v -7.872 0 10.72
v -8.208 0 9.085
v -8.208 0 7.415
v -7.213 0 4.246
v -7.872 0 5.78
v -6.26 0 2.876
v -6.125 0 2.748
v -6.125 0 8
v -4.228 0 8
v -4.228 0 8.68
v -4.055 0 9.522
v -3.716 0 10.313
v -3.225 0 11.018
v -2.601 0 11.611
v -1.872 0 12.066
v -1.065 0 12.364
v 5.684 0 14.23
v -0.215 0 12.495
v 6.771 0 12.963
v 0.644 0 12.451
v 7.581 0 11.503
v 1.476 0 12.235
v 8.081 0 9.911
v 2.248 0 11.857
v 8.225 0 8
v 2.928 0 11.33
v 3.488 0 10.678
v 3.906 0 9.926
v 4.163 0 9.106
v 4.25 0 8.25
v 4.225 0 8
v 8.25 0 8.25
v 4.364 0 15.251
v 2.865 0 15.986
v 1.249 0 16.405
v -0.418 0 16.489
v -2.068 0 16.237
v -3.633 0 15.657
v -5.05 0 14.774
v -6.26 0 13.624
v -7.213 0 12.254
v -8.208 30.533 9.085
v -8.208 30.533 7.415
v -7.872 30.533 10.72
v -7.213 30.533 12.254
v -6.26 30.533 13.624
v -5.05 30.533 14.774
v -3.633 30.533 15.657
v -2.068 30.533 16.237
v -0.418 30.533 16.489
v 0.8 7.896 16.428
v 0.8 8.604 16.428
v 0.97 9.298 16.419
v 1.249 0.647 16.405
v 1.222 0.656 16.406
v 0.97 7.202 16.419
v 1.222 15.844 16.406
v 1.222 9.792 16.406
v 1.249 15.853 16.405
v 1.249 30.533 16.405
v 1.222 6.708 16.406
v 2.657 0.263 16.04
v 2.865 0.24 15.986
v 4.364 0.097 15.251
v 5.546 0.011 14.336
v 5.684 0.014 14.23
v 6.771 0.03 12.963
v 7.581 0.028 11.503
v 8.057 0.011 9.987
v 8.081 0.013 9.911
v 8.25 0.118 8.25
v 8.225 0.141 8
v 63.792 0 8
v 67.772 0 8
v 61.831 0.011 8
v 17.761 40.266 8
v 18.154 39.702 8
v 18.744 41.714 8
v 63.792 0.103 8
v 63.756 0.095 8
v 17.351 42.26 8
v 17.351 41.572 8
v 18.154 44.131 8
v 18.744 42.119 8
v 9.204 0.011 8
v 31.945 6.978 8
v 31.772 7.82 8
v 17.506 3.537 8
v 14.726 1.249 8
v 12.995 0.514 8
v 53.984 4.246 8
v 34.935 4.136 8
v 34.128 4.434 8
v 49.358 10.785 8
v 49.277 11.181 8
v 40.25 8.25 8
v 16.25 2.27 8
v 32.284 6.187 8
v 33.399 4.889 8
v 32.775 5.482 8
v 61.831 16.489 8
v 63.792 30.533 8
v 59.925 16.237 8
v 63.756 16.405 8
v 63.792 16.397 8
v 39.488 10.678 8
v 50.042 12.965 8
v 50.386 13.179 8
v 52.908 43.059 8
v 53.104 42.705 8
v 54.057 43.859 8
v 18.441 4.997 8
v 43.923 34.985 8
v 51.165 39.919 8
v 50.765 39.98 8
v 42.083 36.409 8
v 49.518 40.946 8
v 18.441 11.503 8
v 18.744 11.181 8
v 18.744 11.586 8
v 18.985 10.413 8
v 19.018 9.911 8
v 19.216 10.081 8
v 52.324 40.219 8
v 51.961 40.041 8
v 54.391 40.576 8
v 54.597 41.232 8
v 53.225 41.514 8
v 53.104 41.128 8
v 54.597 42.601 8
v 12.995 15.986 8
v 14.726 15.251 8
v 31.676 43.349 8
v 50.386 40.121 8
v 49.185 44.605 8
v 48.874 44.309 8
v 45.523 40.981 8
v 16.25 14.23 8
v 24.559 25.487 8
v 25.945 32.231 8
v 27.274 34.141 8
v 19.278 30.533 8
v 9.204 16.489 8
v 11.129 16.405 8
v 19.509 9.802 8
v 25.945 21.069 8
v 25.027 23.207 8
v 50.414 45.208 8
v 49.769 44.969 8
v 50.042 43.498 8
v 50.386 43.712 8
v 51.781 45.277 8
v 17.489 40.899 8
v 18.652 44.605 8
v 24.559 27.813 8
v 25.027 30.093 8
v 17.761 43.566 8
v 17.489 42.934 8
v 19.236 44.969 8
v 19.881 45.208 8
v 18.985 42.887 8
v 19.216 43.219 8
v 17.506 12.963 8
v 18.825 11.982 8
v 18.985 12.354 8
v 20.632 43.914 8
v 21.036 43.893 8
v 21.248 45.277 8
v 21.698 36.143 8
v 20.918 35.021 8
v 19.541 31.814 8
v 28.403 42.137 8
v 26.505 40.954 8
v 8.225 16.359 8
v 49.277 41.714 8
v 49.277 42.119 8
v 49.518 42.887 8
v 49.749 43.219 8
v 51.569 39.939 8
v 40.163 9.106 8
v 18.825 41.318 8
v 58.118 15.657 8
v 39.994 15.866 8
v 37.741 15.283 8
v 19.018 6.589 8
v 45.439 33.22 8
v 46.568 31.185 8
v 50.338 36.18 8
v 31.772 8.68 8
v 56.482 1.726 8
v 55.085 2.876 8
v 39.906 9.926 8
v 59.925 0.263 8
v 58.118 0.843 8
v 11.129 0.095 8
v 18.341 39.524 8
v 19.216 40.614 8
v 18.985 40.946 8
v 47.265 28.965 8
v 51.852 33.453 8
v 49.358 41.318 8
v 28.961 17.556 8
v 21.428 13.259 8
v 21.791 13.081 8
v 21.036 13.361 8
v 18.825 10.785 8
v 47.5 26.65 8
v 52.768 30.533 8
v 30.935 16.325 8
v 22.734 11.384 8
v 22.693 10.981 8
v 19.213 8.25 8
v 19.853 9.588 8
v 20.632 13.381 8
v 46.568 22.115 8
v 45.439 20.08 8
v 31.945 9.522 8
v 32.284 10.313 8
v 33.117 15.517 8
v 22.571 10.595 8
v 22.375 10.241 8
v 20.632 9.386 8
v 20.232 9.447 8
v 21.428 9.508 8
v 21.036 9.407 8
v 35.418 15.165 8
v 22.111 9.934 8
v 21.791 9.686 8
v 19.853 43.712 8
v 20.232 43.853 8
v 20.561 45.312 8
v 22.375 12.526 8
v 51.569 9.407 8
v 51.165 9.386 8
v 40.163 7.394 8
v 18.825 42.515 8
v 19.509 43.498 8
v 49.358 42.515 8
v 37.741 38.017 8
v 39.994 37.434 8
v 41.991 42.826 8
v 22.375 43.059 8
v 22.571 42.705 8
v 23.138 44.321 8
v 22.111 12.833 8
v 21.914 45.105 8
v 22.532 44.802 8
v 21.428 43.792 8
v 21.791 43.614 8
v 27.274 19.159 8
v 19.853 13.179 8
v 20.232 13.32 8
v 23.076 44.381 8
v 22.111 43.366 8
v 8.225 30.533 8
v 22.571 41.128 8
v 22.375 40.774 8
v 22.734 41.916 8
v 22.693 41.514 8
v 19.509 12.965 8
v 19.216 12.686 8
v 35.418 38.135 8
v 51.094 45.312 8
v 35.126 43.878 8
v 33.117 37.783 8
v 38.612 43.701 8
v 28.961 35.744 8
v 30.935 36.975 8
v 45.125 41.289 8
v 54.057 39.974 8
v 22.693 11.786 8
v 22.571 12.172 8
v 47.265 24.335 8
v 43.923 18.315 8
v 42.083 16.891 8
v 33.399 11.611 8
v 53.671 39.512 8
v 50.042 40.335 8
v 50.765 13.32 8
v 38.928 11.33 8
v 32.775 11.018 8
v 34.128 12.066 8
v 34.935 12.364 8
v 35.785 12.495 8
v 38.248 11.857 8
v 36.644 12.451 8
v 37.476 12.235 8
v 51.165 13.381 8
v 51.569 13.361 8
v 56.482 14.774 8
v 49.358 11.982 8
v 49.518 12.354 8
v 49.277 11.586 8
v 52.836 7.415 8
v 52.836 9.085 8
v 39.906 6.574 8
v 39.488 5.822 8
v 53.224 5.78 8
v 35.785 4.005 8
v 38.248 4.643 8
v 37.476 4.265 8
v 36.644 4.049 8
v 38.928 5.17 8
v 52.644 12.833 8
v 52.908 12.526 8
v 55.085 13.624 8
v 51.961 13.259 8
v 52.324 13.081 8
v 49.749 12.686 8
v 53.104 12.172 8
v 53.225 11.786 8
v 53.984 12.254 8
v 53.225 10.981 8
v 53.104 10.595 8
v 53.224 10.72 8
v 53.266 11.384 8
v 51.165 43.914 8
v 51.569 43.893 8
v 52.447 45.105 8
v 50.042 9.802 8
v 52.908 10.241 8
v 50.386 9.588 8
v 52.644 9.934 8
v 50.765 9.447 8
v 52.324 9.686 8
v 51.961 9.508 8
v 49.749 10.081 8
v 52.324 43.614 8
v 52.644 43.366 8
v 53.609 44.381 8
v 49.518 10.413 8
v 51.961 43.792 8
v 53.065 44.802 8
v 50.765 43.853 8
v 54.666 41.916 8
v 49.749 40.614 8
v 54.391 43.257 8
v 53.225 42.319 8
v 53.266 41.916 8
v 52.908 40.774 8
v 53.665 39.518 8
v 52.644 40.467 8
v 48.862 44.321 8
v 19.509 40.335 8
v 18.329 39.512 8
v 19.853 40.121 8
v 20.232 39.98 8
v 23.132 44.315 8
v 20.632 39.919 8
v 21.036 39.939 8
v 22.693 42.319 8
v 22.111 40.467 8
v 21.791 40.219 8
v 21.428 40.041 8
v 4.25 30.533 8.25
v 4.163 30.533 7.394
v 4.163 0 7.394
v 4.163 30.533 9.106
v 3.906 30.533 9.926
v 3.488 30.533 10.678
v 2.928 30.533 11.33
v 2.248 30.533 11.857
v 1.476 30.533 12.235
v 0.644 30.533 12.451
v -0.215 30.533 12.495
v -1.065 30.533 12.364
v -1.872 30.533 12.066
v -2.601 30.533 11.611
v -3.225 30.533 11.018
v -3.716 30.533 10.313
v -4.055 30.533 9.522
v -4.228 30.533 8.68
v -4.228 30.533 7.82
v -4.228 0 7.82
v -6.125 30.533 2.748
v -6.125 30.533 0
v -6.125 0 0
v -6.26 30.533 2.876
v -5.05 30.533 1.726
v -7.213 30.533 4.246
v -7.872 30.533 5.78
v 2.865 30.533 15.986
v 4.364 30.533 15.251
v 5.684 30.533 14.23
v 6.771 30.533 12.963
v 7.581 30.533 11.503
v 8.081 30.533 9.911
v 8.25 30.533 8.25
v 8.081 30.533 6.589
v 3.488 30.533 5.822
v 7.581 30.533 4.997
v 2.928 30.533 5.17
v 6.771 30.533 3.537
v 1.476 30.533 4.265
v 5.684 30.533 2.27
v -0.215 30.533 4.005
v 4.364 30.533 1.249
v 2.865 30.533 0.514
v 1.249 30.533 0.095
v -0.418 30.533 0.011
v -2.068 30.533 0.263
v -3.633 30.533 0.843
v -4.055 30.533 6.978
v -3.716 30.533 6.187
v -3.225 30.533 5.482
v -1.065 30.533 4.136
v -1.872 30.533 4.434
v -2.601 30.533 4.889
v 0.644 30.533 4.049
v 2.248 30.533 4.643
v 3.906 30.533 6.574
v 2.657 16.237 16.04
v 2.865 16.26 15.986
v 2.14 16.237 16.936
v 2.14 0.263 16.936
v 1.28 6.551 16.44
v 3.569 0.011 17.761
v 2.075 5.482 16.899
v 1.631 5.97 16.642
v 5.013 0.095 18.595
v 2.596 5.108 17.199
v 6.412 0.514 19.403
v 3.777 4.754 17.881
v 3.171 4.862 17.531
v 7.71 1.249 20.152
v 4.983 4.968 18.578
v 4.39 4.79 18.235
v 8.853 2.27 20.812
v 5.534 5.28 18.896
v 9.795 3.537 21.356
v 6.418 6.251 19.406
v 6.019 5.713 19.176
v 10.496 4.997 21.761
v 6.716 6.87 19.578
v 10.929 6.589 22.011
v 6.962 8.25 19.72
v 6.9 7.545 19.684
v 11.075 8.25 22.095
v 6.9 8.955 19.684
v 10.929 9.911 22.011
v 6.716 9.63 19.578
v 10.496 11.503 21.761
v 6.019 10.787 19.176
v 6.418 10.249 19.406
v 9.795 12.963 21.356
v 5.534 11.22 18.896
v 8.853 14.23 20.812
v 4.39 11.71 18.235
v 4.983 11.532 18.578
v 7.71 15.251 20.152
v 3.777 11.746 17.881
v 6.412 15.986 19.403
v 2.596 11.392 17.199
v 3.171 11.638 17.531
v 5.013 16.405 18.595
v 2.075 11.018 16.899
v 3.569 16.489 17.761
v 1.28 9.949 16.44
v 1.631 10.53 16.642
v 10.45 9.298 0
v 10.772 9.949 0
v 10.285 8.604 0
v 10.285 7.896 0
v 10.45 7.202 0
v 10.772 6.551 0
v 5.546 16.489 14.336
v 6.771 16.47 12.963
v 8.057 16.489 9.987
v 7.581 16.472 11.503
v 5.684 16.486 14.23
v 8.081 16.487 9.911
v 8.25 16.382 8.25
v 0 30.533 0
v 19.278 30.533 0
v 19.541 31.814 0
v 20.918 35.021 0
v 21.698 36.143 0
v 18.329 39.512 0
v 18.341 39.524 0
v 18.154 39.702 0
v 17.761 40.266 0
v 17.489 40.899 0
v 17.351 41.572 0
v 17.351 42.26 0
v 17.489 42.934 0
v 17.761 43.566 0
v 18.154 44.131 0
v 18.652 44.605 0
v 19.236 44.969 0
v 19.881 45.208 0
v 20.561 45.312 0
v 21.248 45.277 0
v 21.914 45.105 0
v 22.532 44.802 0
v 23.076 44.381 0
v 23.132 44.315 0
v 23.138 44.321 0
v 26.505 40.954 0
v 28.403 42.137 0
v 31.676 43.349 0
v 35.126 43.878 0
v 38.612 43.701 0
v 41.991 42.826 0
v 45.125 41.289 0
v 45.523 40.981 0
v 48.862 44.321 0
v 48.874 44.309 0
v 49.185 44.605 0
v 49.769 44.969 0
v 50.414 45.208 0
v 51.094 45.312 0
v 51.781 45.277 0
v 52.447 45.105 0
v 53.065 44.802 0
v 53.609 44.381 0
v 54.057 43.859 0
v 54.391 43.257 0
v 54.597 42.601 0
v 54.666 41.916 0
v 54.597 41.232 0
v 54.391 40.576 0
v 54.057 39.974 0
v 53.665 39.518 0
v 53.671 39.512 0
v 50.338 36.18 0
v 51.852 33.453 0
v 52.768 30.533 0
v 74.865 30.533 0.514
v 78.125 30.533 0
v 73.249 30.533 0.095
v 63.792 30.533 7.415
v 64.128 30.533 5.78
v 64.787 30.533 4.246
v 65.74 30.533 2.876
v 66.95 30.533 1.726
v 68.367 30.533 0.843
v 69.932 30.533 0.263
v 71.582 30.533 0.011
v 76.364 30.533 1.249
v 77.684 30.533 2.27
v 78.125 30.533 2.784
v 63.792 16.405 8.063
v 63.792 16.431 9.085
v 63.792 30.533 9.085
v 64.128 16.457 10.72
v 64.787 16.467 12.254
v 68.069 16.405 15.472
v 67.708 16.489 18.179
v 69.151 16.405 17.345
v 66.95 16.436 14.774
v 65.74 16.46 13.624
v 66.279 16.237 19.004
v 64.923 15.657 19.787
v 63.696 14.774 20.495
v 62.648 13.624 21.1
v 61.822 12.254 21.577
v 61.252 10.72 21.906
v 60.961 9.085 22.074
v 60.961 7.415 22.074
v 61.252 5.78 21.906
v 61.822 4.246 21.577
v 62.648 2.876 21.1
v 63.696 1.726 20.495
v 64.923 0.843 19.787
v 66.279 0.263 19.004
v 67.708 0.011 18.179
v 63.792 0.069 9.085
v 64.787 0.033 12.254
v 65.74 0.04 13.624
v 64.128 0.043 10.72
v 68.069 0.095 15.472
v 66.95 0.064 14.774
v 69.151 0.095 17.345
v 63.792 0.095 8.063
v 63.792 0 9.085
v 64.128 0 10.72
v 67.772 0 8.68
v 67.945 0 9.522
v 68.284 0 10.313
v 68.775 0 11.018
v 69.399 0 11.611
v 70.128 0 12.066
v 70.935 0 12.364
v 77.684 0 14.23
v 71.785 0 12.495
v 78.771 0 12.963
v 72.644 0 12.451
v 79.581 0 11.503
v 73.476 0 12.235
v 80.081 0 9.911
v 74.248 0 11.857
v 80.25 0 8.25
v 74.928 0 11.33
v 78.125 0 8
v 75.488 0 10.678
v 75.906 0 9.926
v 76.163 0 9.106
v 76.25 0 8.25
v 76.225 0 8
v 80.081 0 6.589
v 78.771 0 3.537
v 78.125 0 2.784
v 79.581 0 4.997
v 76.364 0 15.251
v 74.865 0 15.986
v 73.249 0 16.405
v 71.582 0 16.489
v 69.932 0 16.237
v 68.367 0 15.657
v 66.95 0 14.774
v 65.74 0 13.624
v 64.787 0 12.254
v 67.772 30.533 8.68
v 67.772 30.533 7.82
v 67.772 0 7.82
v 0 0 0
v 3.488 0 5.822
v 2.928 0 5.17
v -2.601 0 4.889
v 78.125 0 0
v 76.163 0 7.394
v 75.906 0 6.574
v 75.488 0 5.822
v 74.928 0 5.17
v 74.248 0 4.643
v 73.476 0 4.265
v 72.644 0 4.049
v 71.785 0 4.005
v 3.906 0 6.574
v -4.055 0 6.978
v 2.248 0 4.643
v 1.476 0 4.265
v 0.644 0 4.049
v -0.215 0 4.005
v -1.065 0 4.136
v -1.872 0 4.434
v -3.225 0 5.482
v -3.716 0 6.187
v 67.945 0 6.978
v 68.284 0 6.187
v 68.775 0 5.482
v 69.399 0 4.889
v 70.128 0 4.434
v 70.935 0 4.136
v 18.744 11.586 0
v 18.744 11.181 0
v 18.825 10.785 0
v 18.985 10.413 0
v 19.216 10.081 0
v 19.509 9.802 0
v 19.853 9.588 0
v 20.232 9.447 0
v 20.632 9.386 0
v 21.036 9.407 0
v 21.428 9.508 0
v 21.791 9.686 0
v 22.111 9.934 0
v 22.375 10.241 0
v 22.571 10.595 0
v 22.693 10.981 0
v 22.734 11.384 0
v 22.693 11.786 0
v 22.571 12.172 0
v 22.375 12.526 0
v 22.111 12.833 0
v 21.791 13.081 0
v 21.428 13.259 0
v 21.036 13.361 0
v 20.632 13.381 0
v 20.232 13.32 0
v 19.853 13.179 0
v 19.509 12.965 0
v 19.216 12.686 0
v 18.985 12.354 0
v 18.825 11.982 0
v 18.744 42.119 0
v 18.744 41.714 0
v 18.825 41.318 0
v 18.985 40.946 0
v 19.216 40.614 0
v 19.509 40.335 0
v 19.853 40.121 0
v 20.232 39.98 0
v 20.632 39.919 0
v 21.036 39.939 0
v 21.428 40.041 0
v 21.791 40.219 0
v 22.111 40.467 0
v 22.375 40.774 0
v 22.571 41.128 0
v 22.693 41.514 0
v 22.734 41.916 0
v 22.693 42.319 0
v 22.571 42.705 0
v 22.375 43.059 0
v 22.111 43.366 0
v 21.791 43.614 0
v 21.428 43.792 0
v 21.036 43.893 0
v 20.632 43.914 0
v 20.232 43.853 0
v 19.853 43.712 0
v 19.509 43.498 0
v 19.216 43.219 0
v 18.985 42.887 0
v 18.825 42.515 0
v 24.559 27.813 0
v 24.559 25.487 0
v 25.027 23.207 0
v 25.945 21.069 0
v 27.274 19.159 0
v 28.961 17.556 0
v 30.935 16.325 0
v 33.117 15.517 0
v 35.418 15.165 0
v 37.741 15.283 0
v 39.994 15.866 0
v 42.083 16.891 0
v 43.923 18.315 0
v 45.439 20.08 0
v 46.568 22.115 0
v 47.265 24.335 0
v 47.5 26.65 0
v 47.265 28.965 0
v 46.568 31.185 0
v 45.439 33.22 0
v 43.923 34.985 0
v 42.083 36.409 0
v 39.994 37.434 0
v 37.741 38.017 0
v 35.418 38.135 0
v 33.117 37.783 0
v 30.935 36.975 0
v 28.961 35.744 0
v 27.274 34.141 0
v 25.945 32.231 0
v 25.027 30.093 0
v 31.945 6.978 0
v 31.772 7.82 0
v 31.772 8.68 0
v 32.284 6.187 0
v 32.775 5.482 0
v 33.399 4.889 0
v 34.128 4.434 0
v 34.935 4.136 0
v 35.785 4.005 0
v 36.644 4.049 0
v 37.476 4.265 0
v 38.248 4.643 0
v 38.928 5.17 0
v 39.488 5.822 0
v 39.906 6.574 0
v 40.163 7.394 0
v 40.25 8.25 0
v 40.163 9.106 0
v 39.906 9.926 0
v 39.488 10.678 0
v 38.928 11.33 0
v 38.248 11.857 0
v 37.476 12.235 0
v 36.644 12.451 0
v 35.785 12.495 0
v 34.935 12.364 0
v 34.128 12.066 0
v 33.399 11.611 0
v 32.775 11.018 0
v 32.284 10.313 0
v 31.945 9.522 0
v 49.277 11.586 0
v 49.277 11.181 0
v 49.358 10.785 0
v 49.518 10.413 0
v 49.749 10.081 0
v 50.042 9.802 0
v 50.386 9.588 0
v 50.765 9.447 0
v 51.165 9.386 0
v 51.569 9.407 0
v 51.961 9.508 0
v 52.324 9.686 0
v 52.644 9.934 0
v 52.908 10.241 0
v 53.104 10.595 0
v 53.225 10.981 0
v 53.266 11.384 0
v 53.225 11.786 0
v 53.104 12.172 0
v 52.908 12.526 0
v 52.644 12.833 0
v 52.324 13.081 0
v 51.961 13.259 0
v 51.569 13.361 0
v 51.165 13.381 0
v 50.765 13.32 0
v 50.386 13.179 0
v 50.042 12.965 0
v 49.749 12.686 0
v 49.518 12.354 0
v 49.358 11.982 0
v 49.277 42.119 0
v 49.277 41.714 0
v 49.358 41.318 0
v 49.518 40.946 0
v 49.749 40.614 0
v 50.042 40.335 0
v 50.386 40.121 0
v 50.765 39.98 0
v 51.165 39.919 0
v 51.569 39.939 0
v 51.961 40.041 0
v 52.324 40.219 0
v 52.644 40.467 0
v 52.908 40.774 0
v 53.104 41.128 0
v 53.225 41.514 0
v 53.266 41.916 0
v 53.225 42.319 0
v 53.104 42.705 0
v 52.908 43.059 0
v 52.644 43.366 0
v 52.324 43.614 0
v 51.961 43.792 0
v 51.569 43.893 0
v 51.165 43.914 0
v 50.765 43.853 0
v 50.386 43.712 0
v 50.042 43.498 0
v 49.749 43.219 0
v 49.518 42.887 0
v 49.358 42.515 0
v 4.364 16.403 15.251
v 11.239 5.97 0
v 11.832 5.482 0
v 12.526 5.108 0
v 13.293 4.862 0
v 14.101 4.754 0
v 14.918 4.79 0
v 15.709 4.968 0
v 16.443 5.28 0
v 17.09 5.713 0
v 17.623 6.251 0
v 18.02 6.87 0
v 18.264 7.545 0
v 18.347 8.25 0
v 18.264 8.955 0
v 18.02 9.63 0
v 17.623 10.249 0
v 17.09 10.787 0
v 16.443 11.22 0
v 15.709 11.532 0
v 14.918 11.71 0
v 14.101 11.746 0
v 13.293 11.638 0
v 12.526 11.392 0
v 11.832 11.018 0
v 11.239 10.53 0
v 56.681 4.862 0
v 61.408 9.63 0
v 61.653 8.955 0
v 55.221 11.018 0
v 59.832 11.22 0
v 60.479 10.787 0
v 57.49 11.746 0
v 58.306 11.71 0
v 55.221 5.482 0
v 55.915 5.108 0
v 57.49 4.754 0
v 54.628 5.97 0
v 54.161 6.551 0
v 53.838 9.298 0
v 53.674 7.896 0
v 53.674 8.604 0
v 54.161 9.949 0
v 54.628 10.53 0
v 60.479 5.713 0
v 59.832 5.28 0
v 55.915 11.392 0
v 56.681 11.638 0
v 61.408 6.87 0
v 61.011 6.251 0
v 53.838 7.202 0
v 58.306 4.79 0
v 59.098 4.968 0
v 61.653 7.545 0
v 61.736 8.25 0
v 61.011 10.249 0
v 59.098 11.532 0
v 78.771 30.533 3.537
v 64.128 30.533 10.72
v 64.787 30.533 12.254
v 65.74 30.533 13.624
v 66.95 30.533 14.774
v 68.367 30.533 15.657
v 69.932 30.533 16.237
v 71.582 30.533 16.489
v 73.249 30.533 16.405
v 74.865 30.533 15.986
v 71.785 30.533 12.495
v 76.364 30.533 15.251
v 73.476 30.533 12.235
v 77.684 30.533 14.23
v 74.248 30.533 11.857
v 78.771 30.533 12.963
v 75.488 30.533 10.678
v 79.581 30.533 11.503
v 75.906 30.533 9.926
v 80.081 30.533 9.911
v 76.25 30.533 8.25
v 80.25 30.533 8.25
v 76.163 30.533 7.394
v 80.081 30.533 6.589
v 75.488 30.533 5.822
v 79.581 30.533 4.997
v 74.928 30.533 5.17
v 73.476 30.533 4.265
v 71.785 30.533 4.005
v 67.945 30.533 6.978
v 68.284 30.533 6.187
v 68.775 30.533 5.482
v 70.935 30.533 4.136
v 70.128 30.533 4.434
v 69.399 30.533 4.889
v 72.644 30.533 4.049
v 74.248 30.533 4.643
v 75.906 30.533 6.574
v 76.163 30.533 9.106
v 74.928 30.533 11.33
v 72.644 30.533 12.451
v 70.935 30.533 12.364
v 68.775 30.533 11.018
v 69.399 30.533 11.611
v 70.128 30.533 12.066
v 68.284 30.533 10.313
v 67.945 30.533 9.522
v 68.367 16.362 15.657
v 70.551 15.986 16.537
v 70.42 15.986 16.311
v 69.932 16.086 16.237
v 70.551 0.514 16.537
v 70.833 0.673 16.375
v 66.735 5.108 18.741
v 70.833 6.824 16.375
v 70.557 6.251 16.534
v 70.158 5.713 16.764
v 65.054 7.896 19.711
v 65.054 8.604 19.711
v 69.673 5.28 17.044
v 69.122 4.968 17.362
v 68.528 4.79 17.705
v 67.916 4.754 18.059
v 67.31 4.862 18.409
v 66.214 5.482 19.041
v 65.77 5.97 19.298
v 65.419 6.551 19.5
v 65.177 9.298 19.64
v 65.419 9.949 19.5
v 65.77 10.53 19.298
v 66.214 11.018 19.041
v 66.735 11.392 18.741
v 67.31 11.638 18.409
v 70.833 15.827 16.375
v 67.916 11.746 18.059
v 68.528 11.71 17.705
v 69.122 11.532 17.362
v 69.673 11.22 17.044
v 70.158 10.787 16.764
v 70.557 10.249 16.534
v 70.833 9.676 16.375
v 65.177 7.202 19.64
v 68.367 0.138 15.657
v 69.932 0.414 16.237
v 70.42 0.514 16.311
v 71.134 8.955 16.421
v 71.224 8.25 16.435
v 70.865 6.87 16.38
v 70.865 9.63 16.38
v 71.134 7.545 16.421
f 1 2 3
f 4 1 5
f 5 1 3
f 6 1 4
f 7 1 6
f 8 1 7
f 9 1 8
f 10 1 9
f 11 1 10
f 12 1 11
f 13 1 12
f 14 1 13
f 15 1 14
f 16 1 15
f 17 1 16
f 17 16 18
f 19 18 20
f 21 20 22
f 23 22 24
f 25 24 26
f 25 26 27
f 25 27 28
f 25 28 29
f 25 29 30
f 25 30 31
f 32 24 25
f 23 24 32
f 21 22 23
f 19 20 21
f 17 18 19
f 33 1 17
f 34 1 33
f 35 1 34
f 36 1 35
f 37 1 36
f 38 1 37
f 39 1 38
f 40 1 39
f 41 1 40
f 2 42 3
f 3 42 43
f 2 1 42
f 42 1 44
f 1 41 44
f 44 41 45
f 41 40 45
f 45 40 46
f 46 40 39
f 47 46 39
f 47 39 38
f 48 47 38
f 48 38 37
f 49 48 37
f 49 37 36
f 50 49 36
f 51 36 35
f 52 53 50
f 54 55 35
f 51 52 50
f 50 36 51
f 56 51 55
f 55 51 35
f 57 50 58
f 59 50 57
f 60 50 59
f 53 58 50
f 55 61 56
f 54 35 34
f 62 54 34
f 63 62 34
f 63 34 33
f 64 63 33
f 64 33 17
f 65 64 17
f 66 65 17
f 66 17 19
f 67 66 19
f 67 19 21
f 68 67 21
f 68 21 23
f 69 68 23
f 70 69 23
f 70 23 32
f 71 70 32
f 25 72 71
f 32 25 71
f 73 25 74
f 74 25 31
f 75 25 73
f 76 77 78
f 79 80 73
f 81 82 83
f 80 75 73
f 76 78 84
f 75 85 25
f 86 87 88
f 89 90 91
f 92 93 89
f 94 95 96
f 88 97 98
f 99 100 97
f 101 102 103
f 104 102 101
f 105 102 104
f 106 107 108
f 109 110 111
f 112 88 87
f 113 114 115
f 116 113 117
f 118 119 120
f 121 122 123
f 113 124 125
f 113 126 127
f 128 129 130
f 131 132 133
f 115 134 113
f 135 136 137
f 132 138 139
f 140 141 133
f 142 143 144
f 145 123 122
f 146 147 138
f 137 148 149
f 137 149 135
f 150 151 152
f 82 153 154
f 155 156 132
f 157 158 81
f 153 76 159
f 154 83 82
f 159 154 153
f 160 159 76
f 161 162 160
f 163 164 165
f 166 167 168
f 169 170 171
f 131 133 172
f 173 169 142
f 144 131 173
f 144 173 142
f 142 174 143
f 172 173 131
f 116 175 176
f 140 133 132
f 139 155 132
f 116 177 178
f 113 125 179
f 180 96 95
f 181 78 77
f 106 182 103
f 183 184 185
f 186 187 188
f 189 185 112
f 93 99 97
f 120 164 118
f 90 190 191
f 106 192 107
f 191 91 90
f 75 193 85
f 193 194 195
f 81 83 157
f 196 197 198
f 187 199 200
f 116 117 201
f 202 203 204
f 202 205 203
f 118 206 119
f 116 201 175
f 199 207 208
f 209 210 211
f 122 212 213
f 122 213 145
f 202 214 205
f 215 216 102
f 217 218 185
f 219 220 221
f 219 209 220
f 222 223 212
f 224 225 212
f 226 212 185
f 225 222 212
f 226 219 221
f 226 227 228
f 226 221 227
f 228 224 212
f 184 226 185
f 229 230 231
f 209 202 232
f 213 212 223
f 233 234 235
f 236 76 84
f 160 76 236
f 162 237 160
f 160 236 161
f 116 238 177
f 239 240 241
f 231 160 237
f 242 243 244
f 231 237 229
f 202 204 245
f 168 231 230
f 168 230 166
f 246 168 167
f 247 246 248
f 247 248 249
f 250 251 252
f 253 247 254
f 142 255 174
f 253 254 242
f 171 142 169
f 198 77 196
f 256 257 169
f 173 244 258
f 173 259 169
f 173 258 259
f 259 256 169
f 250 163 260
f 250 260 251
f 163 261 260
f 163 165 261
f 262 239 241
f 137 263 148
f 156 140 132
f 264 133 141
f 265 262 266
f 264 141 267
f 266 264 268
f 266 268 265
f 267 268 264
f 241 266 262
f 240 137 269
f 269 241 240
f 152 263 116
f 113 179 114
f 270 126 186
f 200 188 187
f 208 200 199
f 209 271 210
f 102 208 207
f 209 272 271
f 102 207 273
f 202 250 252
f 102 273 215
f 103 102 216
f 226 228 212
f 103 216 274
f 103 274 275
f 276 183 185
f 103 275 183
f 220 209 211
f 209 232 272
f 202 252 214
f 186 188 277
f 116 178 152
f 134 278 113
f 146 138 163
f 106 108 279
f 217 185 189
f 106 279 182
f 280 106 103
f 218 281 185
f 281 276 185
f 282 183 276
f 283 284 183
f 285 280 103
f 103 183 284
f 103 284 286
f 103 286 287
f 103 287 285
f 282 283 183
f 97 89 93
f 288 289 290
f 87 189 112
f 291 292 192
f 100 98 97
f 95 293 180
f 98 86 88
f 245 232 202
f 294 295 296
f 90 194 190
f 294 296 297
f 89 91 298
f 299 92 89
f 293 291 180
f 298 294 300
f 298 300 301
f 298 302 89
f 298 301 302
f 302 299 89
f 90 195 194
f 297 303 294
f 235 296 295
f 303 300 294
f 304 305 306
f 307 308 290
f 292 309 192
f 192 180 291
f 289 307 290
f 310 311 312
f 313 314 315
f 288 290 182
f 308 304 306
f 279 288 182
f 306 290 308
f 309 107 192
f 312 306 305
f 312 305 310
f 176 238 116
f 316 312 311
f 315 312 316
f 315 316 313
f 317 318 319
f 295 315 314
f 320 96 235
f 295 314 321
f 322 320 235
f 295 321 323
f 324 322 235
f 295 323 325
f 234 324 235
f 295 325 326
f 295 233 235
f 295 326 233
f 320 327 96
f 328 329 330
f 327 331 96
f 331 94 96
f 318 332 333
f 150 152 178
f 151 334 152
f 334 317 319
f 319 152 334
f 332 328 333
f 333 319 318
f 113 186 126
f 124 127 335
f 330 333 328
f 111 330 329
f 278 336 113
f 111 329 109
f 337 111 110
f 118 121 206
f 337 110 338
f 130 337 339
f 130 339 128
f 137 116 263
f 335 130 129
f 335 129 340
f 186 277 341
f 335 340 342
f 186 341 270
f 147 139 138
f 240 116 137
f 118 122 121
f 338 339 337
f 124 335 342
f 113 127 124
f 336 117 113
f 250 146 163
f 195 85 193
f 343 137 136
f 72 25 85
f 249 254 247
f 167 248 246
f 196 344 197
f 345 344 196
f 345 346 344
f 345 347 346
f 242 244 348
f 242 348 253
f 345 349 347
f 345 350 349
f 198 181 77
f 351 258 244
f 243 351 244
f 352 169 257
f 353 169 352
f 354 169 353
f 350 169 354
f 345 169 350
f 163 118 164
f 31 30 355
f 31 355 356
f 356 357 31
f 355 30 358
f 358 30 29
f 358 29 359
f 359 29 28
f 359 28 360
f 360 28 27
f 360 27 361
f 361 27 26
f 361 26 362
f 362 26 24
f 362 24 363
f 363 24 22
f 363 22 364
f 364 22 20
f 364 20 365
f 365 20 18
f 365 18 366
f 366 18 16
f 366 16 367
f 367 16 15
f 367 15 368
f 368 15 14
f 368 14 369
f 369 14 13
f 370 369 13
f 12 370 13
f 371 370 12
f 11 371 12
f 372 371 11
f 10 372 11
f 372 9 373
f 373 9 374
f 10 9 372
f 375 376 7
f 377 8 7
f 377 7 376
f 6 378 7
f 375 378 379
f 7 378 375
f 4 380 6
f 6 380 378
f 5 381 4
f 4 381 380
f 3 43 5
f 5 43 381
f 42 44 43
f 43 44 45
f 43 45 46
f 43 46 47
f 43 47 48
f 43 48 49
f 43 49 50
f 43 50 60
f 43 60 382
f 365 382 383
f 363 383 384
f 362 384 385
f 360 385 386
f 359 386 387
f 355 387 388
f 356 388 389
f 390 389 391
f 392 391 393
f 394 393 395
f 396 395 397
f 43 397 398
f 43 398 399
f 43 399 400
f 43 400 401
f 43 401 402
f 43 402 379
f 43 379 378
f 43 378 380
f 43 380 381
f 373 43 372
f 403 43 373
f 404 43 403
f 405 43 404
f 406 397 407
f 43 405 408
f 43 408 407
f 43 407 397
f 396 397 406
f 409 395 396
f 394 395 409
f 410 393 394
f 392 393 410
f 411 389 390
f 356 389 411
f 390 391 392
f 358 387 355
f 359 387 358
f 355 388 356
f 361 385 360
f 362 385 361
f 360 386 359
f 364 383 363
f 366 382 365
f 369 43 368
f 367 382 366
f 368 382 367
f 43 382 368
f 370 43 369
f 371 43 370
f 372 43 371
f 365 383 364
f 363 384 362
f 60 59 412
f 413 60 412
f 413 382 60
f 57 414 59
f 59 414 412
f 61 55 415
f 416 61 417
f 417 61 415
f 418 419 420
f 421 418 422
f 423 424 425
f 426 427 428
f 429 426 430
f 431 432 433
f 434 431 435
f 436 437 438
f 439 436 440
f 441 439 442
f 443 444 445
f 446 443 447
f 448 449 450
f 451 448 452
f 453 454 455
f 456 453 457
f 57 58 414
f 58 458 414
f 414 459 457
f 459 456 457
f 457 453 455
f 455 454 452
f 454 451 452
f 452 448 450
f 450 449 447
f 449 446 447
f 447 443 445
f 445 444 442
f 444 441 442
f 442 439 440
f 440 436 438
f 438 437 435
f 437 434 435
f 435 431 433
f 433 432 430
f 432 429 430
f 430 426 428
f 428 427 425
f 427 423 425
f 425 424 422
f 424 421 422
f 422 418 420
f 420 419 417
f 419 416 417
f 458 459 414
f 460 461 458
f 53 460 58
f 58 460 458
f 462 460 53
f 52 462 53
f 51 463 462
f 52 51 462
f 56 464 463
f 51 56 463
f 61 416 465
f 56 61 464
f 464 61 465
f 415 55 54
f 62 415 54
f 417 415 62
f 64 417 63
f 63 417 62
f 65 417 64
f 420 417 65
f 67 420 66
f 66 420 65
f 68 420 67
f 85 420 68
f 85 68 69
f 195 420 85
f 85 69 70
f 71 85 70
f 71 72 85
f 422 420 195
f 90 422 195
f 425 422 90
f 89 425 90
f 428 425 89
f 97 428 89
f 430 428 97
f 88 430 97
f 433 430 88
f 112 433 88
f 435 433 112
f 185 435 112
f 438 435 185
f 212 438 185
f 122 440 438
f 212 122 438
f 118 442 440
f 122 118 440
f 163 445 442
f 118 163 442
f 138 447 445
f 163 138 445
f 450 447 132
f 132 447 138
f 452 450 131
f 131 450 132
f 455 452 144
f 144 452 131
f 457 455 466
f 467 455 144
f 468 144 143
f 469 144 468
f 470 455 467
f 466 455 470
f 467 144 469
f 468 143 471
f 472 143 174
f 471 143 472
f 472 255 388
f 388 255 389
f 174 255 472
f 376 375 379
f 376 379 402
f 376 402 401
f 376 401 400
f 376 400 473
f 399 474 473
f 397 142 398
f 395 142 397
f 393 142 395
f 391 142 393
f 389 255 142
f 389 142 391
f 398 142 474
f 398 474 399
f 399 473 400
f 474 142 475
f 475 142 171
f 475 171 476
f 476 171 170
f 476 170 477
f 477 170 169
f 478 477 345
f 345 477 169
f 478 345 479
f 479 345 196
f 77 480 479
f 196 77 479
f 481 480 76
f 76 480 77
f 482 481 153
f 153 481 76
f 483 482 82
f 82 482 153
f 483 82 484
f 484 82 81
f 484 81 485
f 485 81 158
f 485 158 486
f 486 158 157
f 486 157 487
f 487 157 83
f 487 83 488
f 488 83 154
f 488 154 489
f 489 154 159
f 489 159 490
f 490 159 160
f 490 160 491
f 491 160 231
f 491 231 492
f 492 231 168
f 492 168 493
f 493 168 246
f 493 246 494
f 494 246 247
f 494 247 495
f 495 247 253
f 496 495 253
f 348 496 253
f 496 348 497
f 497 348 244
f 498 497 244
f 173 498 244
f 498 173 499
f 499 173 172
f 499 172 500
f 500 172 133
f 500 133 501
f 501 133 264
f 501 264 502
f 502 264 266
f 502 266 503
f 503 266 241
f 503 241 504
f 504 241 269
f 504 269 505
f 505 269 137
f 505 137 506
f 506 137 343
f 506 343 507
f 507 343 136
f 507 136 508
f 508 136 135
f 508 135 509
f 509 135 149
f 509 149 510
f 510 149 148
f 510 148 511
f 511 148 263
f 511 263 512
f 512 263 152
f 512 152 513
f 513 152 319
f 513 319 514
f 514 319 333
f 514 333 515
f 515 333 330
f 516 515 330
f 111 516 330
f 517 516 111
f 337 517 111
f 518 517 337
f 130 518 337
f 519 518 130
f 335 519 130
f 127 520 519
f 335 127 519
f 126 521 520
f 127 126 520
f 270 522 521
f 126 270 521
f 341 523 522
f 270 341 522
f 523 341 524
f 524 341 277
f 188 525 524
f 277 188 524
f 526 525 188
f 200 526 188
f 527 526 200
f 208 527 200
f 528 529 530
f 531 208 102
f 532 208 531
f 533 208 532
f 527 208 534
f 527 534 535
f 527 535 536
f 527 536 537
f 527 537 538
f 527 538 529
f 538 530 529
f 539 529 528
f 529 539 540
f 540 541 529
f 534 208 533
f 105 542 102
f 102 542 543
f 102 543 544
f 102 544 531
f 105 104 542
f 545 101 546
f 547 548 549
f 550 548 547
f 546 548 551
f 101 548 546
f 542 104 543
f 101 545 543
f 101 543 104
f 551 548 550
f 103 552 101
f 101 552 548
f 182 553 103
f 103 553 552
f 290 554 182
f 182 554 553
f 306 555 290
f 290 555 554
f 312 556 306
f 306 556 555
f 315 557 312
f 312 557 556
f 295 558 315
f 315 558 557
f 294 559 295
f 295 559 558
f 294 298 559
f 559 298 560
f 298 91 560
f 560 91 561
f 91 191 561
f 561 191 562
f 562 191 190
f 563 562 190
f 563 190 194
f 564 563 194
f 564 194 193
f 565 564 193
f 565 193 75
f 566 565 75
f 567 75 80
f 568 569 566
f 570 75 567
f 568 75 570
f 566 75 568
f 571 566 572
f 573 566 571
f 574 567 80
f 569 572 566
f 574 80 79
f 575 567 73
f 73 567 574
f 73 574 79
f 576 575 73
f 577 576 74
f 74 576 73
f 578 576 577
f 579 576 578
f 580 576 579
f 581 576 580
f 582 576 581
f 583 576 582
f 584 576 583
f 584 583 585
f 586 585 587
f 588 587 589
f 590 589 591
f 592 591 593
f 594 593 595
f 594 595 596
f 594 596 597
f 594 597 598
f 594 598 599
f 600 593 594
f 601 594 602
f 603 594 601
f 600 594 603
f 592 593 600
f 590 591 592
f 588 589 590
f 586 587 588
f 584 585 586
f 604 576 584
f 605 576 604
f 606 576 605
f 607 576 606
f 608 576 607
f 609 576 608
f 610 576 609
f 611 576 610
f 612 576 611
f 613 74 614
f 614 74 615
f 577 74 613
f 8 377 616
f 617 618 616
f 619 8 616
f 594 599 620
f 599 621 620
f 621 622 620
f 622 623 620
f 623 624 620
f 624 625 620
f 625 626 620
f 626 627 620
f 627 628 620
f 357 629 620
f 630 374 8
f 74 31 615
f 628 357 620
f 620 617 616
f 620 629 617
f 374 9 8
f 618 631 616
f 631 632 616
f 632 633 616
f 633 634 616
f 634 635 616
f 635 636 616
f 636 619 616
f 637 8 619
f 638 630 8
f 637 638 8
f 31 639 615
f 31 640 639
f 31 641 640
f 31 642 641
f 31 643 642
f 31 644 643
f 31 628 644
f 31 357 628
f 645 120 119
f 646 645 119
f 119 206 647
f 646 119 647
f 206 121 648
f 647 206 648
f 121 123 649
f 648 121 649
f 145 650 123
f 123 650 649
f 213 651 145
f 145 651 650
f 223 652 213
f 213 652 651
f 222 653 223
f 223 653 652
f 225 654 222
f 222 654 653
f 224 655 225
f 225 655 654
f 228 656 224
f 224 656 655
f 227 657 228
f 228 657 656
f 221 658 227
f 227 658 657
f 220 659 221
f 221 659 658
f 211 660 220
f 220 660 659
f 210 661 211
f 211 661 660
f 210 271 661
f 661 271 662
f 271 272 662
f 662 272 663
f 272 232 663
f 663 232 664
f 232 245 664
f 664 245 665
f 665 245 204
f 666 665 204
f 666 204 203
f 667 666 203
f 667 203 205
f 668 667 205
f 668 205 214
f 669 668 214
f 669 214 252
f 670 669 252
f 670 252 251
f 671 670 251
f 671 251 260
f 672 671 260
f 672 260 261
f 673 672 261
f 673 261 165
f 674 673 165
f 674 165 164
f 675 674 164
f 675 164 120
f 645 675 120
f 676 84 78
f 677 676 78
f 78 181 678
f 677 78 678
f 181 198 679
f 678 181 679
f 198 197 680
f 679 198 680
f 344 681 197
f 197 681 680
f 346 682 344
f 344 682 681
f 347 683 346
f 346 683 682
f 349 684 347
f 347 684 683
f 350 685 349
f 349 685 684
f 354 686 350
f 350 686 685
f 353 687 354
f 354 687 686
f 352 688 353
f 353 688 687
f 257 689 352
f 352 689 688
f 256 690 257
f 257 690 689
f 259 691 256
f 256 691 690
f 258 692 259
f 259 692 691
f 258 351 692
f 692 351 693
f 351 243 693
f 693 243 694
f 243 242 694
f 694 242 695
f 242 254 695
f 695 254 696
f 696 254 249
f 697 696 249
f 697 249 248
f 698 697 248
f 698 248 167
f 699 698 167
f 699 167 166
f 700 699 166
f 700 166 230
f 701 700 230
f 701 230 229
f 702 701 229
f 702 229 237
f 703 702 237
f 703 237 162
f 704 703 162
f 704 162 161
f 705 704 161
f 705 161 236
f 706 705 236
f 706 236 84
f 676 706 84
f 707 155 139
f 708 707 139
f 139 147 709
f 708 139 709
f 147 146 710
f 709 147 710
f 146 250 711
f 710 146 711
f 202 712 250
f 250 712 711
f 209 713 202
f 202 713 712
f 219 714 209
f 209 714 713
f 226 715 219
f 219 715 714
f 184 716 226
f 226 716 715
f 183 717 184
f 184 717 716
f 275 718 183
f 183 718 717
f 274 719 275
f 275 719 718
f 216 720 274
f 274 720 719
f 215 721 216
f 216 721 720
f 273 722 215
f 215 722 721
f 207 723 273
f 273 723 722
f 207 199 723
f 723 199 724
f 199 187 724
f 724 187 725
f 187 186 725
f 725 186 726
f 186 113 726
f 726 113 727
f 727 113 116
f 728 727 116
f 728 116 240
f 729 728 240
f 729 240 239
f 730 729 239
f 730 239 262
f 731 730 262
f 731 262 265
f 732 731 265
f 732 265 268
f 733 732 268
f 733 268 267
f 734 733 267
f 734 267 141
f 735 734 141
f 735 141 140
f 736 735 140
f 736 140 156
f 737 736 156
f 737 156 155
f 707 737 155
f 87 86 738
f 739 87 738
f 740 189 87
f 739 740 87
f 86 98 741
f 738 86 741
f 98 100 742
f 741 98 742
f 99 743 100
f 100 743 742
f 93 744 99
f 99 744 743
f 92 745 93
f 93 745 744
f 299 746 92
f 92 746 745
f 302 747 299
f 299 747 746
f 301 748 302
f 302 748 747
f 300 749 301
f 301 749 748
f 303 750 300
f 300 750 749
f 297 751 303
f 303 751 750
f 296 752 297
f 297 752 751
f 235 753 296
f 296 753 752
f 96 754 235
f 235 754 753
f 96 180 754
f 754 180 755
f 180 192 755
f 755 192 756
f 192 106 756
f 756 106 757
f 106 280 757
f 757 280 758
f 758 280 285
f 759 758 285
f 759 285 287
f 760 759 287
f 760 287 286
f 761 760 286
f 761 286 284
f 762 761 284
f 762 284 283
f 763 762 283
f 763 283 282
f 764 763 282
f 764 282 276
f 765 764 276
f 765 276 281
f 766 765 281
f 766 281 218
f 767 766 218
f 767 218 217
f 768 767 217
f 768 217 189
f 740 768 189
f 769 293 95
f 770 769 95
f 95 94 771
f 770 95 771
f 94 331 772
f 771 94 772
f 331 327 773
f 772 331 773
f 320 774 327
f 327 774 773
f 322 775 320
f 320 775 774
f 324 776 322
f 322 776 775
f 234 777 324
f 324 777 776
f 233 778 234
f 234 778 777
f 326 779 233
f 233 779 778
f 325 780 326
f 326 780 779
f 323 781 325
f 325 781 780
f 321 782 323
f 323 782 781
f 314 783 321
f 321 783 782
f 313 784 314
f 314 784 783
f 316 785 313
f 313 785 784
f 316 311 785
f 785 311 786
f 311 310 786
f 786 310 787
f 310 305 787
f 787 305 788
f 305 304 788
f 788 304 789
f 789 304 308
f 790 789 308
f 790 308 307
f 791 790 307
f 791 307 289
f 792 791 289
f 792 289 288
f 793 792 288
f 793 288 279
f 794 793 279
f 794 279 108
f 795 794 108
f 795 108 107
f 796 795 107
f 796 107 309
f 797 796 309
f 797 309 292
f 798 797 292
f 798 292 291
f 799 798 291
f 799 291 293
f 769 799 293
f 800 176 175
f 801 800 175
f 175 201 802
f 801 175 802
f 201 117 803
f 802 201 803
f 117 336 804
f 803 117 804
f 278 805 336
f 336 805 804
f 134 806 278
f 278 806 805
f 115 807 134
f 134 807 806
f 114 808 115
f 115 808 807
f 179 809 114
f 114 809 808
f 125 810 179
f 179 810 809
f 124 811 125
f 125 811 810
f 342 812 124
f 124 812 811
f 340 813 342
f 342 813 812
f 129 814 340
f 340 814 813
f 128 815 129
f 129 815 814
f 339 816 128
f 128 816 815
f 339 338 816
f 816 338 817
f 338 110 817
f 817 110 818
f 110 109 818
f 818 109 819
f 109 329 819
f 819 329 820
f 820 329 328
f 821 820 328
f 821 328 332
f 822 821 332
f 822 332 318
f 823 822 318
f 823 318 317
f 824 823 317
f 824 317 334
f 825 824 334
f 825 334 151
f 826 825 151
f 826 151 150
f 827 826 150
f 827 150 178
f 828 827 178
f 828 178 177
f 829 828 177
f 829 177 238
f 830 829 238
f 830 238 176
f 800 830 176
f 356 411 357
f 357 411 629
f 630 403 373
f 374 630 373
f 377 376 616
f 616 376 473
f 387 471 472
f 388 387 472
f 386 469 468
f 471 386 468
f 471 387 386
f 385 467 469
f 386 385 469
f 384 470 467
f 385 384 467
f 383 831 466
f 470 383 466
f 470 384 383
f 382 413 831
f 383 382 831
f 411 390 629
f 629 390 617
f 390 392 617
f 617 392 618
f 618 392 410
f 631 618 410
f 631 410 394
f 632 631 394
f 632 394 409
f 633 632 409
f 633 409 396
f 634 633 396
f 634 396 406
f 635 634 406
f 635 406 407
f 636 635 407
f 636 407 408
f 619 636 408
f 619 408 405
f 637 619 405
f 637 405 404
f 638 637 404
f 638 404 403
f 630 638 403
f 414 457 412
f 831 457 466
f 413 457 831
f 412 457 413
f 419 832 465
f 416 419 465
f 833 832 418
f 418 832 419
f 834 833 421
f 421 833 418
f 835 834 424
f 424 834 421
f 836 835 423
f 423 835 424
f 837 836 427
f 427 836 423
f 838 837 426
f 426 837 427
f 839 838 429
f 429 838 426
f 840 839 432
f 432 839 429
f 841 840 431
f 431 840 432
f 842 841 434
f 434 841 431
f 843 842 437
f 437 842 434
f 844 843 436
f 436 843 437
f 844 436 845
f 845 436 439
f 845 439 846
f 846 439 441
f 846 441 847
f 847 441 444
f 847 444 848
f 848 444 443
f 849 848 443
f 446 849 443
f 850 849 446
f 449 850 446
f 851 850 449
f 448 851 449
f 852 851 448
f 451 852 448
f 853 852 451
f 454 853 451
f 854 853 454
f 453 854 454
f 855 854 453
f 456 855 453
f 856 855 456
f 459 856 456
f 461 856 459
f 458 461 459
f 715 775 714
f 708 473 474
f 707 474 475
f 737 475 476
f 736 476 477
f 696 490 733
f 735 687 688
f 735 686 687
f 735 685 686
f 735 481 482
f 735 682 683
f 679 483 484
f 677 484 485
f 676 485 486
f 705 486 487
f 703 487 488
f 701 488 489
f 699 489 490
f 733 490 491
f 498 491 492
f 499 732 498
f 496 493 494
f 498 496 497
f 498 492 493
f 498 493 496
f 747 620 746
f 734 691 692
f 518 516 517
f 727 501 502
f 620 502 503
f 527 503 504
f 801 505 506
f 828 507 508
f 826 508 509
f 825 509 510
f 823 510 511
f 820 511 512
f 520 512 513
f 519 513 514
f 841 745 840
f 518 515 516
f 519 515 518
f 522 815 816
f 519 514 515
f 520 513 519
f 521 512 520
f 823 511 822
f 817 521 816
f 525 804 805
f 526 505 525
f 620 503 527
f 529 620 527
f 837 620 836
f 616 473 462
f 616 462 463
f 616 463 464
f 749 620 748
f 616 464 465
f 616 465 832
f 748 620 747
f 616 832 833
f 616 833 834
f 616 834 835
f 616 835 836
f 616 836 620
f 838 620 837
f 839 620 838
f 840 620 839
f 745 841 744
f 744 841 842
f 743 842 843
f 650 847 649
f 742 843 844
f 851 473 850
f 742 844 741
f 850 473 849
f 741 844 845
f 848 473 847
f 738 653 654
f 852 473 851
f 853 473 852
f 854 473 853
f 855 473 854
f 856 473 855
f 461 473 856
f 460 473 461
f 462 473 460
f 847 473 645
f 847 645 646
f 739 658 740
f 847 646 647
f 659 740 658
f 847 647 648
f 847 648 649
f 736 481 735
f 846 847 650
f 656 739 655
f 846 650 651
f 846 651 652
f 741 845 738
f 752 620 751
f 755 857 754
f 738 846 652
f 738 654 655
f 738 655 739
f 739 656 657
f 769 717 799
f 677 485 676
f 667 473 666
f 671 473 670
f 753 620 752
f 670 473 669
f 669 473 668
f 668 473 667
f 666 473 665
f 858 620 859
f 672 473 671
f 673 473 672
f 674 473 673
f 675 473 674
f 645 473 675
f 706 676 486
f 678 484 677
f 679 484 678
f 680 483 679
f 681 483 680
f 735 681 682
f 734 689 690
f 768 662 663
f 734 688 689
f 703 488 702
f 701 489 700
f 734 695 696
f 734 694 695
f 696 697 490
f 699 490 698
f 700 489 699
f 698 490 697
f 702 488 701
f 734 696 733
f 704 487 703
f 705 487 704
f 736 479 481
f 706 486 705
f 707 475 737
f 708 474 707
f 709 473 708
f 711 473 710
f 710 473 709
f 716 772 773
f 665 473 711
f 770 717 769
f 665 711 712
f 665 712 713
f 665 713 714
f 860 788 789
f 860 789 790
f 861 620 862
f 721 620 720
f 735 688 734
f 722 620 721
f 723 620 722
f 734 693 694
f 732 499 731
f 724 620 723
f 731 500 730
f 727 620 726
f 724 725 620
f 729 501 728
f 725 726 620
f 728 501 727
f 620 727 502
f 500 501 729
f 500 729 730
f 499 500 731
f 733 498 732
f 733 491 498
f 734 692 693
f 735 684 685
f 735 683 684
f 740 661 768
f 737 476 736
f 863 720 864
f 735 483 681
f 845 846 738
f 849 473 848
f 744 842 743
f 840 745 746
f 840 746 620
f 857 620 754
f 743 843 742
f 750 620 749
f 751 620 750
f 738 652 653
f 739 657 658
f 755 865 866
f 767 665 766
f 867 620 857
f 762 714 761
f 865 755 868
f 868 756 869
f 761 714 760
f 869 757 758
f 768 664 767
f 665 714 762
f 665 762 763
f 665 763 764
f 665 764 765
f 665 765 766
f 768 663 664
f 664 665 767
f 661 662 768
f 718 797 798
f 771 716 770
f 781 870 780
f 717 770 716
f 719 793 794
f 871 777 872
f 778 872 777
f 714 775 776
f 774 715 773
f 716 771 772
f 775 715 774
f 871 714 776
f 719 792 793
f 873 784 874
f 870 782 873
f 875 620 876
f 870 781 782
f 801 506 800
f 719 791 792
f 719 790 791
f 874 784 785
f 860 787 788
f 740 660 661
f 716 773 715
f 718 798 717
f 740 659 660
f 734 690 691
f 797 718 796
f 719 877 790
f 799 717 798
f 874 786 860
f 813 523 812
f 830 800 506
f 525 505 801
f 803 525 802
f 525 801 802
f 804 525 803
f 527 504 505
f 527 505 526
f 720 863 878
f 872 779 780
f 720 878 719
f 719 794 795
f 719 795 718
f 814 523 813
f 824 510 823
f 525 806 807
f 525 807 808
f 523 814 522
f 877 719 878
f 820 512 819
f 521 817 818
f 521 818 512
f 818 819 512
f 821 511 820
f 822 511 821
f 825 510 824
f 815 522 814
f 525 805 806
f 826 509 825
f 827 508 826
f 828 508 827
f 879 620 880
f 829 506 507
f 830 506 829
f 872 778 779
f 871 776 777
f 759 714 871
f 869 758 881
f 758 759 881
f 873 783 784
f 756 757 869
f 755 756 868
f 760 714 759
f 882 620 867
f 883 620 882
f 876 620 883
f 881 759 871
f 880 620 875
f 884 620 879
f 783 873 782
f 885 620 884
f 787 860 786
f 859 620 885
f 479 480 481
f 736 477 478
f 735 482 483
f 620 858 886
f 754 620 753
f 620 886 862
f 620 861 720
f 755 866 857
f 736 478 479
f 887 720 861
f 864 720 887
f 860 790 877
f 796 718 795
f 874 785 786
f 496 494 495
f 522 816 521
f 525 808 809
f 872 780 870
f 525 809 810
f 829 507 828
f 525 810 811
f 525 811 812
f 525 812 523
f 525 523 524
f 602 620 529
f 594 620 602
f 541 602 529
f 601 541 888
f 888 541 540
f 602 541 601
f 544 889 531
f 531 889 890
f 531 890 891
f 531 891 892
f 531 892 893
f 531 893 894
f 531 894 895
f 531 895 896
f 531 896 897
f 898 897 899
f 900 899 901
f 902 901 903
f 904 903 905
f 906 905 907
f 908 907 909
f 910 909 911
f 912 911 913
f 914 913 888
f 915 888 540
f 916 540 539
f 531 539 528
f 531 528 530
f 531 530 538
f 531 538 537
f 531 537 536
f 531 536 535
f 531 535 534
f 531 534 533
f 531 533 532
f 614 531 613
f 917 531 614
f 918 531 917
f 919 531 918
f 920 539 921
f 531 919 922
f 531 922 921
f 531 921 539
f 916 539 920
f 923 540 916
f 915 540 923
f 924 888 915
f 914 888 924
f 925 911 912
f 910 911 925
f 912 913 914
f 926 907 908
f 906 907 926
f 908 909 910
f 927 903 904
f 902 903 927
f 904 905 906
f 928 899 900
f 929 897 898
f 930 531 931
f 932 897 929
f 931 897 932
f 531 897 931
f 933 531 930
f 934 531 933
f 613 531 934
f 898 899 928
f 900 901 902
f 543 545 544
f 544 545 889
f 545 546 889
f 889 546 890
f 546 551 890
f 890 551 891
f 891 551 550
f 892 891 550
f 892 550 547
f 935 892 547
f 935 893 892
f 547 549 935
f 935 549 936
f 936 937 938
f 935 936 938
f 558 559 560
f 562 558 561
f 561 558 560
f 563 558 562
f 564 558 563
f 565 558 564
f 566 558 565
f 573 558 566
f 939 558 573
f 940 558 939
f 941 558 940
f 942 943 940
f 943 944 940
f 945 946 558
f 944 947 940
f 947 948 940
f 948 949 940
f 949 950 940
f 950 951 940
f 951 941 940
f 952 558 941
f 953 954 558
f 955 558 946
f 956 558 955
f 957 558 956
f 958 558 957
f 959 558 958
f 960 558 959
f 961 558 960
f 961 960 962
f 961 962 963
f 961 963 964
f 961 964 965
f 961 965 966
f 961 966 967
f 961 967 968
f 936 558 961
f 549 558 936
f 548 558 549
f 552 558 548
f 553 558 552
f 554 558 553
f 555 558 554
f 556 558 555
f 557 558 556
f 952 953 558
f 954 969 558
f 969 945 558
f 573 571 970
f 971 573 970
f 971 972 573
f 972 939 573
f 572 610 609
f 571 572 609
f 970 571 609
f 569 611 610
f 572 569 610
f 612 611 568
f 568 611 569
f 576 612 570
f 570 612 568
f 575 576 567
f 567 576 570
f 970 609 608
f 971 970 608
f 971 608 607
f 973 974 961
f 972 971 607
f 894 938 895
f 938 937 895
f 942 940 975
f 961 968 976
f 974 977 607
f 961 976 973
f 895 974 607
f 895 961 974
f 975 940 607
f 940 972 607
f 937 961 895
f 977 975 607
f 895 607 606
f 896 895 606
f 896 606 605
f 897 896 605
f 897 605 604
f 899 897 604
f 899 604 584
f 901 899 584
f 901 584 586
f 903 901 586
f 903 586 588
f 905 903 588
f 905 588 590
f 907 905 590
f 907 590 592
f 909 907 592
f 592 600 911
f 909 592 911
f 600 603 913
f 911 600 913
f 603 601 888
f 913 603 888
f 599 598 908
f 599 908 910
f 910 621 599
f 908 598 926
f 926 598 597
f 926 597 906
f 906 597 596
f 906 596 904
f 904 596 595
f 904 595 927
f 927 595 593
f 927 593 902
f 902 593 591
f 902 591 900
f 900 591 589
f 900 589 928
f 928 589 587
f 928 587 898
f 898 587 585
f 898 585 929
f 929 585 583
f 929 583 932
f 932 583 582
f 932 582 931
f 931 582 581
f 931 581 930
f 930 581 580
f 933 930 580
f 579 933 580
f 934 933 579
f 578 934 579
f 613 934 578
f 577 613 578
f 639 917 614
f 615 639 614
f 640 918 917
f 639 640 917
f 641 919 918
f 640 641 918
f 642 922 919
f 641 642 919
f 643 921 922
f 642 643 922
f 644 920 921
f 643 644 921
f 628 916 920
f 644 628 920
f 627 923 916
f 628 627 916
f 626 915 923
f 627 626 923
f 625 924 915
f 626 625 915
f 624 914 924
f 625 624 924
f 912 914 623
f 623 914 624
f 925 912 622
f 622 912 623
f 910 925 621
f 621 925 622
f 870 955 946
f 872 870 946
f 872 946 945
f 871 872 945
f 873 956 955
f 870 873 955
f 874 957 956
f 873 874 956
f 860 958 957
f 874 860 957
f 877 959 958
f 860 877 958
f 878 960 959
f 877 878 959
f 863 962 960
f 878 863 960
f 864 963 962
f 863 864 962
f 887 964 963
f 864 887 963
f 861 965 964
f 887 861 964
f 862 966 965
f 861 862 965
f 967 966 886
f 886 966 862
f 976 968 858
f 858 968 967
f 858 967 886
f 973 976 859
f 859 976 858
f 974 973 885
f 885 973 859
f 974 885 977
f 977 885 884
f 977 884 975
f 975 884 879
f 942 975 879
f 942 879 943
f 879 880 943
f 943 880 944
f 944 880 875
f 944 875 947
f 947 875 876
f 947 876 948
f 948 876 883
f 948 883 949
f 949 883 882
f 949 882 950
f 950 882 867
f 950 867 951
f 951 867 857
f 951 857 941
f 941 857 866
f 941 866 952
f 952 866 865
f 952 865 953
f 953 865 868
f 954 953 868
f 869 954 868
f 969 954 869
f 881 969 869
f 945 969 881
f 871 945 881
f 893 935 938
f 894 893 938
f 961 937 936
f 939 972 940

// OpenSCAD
// file: config.scad
//This REALLY REALLY needs to get organized. I will start sorting through it ASAP 
// This is the config for an M8 Mendel sized printer.

//Constants (These are used throughout the whole printer)
frameroddia = 8.5; //the frame rod diameter
smoothroddia = 8.5; //the smooth rod diameter
bushingod = 16; //The prusabushing OD, you can change this to 15 to use LM8UU linear bearings 
tapsize = 7; //The size of the hole before tapping. 7mm seems to work well.
nemasize = 1.7; //Nema Size (in imperial)
motorscrew = 4; //Hole diameter for mounting the motor
motorcenter = 23; //center hole size for the motor
nutheight = 7;
nutdia = 14.8;
tapping = true; //turn tapping on/off, not implemented yet. (Version 0.3) Version 0.2 has tapping by default right now

//Frame Vertex
vertexwall = 3;
triangle = 60;

//Y Motor Mount
ymountthick = 9;
ywallmulti = 2; //the wall thickness multiplier for the bits that interface with the frame rod
ymotorwallmulti = 2.4; //multiplier for the motor holes because you might want them thicker
ycenterwallmulti = 1.5; //multiplier for the center hole because you might want them thinner

//Top Piece
motorwallmulti= 1.9;
centerwallmulti = 1.7;
partthick = 8;
toprodwall = 4;
toprodspacing = 72;
siderodwall = 4;

// X End Pieces
xrodspacing = 55; //rod spacing center to center
nutwall = 3; //wall thickness
towergap= 10;
// Idler
idlerthick = 4.5;
idlerwidth = 4.5;
idlergap = 8;
//Motor
wallmulti = 1.5;
motorwallmulti = 1.7;
partthick = 8; //thickness of the motor mount (6 works well, need to decouple from top piece)
centerwallmulti = 1.5; // center motor hole multi

//X Carriage 
carriagewidth = 60;
bushingwall = 3;
backwall = 5;
tools = 2;
tool1dia = 16;
tool2dia = 16;
adapterholedia = 4;
platformthick = 10;
platformextension = 40; 
pulleydia = 12;
beltthick = 2;
clampthick = 4;
clampholedia = 4;

//pen holder 
penwall = 3 ;
holdingscrewdia = 3;
shaftheight = 30;
// main file
include <config.scad>;
$fn = 31;

difference(){
union(){
		translate([0,0,(frameroddia/2+toprodwall)])rotate([-90,0,0])cylinder(r=frameroddia/2+toprodwall, h=nemasize*2.54*10*sin(45));
		translate([toprodspacing,0,(frameroddia/2+toprodwall)])rotate([-90,0,0])cylinder(r=frameroddia/2+toprodwall, h=nemasize*2.54*10*sin(45));
		translate([-frameroddia/4-toprodwall,0,0])cube([toprodspacing+(frameroddia/4+toprodwall)*2,nemasize*2.54*10*sin(45),partthick]);
		translate([toprodspacing/2-(nemasize*2.54*sin(45)*5),siderodwall+frameroddia/2-(nemasize*2.54*sin(45)*5)+bushingod/2+nutdia/2+nutwall,0]){
		//motor construction
		translate([nemasize*2.54*sin(45)*10,nemasize*2.54*sin(45)*10,0])cylinder(r=motorscrew/2*motorwallmulti, h=partthick);
		translate([0,nemasize*2.54*sin(45)*10,0])cylinder(r=motorscrew/2*motorwallmulti, h=partthick);
		translate([nemasize*2.54*sin(45)*10,0,0])cylinder(r=motorscrew/2*motorwallmulti, h=partthick);
		translate([0,0,0])cylinder(r=motorscrew/2*motorwallmulti, h=partthick);
		translate([nemasize*2.54*sin(45)*5,nemasize*2.54*sin(45)*5,0])cylinder(r=motorcenter/2*centerwallmulti, h=partthick); //motorcenter
		translate([-motorscrew/2*motorwallmulti*sin(45),motorscrew/2*motorwallmulti*sin(45),0])rotate([0,0,-45])cube([motorscrew*motorwallmulti,nemasize*2.54*10,partthick]);
		translate([nemasize*2.54*sin(45)*10-(motorscrew/2*motorwallmulti*sin(45)),-motorscrew/2*motorwallmulti*sin(45),0])rotate([0,0,45])cube([motorscrew*motorwallmulti,nemasize*2.54*10,partthick]);
			}
		translate([toprodspacing/2,frameroddia+siderodwall*2,-1])cylinder(r=smoothroddia/2+siderodwall,h=partthick);
			
		translate([toprodspacing-cos(triangle/2)*frameroddia/2-frameroddia,frameroddia/2+siderodwall,cos(triangle/2)*frameroddia/2])rotate([0,triangle/2,0])cylinder(r=frameroddia/2+siderodwall, h=(frameroddia+toprodwall*2));
		translate([cos(triangle/2)*frameroddia/2+frameroddia,frameroddia/2+siderodwall,cos(triangle/2)*frameroddia/2])rotate([0,-triangle/2,0])cylinder(r=frameroddia/2+siderodwall, h=(frameroddia+toprodwall*2));
	
	
}

		translate([0,0,-2])cube([100,100,2]);
		translate([0,-1,(frameroddia/2+toprodwall)])rotate([-90,0,0])cylinder(r=frameroddia/2, h=100+2);
		translate([toprodspacing,-1,(frameroddia/2+toprodwall)])rotate([-90,0,0])cylinder(r=frameroddia/2, h=100+2);
		translate([toprodspacing-cos(triangle/2)*frameroddia/2-frameroddia,frameroddia/2+siderodwall,cos(triangle/2)*frameroddia/2])rotate([0,triangle/2,0])cylinder(r=tapsize/2, h=100,center=true);
		translate([cos(triangle/2)*frameroddia/2+frameroddia,frameroddia/2+siderodwall,cos(triangle/2)*frameroddia/2])rotate([0,-triangle/2,0])cylinder(r=tapsize/2, h=100,center=true);
		
	
		
		translate([toprodspacing/2,frameroddia/2+siderodwall,-1])cylinder(r=smoothroddia/2,h=partthick+2);

		translate([toprodspacing/2-(nemasize*2.54*sin(45)*5),siderodwall+frameroddia/2-(nemasize*2.54*sin(45)*5)+bushingod/2+nutdia/2+nutwall,0]){
		//motor screws
		translate([nemasize*2.54*sin(45)*10,nemasize*2.54*sin(45)*10,0])cylinder(r=motorscrew/2, h=partthick);
		translate([0,nemasize*2.54*sin(45)*10,0])cylinder(r=motorscrew/2, h=partthick);
		translate([nemasize*2.54*sin(45)*10,0,0])cylinder(r=motorscrew/2, h=partthick);
		translate([0,0,0])cylinder(r=motorscrew/2, h=partthick);
		translate([nemasize*2.54*sin(45)*5,nemasize*2.54*sin(45)*5,0])cylinder(r=motorcenter/2, h=partthick); //motorcenter
			}

}
